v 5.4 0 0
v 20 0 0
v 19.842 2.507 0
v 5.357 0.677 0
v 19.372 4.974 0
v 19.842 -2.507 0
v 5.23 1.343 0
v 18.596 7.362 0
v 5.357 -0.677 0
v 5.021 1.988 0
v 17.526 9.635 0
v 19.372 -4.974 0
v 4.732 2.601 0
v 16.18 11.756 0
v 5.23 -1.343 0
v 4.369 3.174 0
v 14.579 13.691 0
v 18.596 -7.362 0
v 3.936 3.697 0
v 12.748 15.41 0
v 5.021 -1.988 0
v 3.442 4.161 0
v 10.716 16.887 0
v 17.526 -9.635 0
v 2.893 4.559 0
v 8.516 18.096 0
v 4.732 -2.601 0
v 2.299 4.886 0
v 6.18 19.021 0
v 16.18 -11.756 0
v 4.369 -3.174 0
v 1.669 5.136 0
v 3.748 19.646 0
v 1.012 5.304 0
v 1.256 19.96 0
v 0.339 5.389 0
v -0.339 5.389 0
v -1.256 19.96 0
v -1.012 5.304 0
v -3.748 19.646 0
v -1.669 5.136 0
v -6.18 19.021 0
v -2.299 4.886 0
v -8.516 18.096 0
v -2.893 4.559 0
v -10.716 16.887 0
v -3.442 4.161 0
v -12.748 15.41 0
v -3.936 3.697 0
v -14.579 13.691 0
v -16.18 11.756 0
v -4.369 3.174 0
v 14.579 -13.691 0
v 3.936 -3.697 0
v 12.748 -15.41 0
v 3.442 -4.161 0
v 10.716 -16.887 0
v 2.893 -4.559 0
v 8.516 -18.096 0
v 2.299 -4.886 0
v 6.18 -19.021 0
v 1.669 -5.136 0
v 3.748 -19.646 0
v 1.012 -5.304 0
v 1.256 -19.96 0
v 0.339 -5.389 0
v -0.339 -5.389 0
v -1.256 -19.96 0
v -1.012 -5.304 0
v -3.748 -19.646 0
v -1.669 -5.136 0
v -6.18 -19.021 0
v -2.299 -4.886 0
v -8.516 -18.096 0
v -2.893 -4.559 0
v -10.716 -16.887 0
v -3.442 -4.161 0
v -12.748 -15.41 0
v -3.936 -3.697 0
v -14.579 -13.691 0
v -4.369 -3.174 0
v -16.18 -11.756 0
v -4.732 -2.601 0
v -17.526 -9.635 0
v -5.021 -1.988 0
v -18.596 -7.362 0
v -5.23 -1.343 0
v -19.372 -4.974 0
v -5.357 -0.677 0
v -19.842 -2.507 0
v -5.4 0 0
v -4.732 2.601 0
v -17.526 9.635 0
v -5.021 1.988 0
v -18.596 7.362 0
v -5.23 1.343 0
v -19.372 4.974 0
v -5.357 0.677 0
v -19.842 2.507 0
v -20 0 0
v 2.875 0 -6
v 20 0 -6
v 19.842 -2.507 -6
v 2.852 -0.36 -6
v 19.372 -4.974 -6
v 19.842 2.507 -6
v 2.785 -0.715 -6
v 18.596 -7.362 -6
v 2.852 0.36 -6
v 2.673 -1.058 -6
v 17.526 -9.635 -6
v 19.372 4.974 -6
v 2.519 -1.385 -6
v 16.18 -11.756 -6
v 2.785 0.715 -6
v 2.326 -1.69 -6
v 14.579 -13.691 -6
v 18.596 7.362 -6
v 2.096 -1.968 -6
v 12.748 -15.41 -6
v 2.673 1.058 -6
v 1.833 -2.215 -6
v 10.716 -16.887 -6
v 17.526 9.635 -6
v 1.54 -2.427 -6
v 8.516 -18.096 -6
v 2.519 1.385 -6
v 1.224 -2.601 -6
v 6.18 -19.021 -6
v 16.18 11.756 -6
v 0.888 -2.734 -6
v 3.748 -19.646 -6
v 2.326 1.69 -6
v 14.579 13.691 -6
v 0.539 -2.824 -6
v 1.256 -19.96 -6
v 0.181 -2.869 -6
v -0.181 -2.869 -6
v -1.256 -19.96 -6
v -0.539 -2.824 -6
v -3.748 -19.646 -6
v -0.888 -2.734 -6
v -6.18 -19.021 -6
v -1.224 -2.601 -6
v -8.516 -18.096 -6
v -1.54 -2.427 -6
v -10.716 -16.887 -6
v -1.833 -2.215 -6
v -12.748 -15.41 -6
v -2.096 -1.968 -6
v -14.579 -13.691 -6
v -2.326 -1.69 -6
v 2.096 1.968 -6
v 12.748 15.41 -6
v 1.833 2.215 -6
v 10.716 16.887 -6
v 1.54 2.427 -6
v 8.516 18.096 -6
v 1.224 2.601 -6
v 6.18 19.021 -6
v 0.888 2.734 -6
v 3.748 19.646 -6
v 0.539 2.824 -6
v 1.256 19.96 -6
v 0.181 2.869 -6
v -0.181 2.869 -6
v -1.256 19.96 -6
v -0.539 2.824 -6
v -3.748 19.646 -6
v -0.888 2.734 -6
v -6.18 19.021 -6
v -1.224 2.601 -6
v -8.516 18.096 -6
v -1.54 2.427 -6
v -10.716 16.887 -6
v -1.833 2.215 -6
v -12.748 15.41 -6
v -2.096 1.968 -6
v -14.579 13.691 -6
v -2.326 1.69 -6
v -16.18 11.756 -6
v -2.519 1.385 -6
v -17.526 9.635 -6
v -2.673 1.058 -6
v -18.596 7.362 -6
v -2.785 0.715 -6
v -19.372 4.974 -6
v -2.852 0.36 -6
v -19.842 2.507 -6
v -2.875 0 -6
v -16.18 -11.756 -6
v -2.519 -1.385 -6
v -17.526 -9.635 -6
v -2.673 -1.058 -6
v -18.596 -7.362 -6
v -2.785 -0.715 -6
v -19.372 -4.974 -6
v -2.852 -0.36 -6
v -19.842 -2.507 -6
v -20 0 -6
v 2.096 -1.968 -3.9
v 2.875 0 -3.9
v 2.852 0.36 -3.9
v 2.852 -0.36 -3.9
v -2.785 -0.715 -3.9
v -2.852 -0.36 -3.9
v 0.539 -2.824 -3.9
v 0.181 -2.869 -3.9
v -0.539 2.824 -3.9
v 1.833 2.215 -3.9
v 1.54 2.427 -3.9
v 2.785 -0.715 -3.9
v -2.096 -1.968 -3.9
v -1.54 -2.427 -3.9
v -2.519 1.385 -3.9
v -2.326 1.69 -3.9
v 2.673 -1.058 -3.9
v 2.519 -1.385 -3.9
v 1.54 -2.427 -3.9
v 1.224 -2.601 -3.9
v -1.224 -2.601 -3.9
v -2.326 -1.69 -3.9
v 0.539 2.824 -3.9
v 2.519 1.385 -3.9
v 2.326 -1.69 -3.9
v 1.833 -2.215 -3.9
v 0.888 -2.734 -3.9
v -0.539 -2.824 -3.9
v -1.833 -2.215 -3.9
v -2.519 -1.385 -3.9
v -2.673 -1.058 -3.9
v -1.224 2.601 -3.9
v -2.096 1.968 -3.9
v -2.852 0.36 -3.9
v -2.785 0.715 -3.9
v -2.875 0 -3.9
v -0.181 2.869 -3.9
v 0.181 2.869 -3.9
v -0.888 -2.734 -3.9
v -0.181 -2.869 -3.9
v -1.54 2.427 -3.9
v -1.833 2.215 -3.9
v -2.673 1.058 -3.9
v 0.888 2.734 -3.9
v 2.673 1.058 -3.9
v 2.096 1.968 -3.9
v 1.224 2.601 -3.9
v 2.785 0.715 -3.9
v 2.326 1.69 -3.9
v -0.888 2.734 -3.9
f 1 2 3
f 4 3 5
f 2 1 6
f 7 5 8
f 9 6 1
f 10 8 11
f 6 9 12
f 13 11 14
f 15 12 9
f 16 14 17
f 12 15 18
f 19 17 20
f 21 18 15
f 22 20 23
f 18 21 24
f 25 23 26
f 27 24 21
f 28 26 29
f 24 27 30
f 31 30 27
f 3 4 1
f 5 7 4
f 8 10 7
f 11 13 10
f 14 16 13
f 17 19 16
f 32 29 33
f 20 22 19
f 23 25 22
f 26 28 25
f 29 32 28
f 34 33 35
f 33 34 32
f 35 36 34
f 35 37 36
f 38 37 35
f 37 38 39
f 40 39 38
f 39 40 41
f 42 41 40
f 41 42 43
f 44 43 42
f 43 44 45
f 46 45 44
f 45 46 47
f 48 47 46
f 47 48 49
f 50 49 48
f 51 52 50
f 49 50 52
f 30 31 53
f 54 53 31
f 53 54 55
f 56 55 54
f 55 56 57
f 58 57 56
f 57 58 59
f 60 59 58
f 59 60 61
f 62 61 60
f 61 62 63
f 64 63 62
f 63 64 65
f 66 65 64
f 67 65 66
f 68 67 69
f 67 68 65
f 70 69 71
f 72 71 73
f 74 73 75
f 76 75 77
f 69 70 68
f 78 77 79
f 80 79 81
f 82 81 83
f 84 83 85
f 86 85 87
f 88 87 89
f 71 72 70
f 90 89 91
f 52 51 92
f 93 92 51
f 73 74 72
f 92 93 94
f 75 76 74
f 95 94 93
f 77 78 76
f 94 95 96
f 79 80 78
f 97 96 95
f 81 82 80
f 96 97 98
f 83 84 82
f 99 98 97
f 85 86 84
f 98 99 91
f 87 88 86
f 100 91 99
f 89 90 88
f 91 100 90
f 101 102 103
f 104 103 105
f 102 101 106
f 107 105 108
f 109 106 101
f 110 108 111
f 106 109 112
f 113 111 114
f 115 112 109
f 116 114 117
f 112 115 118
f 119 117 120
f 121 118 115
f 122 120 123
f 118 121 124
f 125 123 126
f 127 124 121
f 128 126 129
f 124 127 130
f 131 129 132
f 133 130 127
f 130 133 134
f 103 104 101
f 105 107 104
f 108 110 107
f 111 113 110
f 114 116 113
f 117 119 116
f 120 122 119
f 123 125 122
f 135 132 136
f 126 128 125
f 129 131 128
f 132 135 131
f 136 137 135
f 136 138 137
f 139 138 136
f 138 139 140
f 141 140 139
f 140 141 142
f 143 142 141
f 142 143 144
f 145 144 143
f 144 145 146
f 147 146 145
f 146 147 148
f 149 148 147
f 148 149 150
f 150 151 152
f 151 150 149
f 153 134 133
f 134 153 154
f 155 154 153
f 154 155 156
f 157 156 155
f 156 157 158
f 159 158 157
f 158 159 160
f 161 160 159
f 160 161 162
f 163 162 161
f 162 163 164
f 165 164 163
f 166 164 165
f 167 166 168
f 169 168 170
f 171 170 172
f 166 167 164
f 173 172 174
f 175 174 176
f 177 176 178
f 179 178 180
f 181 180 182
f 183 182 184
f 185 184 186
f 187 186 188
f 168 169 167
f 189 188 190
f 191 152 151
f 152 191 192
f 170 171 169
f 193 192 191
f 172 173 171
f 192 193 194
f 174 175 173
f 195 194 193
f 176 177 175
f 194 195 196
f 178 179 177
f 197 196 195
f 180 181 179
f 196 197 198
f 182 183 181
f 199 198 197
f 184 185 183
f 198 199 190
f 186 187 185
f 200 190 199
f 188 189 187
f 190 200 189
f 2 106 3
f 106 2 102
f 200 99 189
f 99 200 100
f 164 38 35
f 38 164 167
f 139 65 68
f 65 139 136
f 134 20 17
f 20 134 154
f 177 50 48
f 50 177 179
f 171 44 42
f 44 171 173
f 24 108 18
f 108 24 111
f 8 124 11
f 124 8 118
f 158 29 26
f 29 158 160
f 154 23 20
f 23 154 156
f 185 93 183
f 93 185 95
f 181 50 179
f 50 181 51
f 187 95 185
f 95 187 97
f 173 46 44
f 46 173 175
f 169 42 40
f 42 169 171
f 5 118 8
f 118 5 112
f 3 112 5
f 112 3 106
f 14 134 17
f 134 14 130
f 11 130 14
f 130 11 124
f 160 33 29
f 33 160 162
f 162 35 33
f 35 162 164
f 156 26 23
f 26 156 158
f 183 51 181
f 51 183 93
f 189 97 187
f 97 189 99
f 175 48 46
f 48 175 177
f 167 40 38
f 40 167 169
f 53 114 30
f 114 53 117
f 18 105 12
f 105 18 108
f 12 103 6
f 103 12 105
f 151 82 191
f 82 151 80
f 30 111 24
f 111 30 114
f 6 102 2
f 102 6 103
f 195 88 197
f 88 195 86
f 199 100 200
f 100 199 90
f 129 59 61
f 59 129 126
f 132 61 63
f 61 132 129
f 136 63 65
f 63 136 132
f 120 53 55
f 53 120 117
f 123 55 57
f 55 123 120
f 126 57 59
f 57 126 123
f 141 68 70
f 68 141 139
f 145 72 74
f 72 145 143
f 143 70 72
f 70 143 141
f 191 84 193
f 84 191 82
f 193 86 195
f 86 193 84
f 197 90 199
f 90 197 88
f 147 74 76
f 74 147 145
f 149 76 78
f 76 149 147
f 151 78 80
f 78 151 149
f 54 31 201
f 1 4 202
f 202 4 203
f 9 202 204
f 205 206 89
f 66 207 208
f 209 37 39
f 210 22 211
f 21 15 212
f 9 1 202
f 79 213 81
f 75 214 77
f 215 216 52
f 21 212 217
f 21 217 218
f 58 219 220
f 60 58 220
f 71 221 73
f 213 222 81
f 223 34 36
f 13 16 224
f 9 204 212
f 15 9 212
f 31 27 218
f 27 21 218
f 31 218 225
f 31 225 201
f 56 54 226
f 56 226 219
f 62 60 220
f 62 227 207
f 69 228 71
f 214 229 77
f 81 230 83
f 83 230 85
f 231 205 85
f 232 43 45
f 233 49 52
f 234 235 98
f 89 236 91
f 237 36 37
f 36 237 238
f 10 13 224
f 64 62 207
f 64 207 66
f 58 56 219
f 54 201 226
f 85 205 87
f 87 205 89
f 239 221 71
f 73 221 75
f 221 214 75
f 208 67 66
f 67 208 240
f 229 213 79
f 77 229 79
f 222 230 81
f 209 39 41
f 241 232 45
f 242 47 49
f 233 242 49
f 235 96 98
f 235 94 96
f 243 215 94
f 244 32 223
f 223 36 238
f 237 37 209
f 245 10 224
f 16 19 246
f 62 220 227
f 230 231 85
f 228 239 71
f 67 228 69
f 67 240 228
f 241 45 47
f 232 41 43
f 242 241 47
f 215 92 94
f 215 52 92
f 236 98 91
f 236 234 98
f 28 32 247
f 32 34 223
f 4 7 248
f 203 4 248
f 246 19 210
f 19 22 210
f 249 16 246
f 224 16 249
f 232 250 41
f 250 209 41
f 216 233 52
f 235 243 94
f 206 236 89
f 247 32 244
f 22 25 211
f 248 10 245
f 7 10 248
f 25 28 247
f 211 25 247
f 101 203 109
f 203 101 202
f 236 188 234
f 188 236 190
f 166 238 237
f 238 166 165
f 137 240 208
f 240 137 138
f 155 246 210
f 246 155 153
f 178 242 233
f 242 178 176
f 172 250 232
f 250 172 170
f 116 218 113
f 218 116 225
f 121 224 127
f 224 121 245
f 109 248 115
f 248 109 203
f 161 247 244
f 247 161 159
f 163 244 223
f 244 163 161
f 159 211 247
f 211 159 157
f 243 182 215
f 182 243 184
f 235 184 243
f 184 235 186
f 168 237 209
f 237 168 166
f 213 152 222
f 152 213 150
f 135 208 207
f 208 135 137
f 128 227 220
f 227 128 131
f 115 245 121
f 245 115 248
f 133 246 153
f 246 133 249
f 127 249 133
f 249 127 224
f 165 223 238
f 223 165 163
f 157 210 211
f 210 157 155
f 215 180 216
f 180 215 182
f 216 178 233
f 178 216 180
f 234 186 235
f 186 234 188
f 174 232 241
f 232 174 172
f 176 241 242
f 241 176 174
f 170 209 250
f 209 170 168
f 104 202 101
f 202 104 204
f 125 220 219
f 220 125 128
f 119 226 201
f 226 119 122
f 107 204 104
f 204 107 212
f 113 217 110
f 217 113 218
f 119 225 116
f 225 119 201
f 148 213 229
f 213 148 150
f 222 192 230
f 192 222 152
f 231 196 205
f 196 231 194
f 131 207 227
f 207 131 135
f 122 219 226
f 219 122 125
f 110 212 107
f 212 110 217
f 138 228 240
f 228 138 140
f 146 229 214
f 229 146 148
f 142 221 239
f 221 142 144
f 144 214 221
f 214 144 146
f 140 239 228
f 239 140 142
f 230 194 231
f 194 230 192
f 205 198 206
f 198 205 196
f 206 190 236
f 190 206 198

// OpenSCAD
$fn = 50;


difference() {
	union() {
		translate(v = [0, 0, -6.0000000000]) {
			cylinder(h = 6, r = 10.0000000000);
		}
		translate(v = [0, 0, -6.0000000000]) {
			cylinder(h = 6, r = 20.0000000000);
		}
	}
	union() {
		translate(v = [0, 0, 0]) {
			rotate(a = [0, 0, 0]) {
				difference() {
					union() {
						#translate(v = [0, 0, -6.0000000000]) {
							cylinder(h = 6, r = 2.6000000000);
						}
						#translate(v = [0, 0, -3.9000000000]) {
							cylinder(h = 3.9000000000, r = 10.0000000000, r1 = 2.8750000000, r2 = 5.4000000000);
						}
						#translate(v = [0, 0, -6.0000000000]) {
							cylinder(h = 6, r = 2.8750000000);
						}
						#translate(v = [0, 0, -6.0000000000]) {
							cylinder(h = 6, r = 2.6000000000);
						}
					}
					union();
				}
			}
		}
	}
}
